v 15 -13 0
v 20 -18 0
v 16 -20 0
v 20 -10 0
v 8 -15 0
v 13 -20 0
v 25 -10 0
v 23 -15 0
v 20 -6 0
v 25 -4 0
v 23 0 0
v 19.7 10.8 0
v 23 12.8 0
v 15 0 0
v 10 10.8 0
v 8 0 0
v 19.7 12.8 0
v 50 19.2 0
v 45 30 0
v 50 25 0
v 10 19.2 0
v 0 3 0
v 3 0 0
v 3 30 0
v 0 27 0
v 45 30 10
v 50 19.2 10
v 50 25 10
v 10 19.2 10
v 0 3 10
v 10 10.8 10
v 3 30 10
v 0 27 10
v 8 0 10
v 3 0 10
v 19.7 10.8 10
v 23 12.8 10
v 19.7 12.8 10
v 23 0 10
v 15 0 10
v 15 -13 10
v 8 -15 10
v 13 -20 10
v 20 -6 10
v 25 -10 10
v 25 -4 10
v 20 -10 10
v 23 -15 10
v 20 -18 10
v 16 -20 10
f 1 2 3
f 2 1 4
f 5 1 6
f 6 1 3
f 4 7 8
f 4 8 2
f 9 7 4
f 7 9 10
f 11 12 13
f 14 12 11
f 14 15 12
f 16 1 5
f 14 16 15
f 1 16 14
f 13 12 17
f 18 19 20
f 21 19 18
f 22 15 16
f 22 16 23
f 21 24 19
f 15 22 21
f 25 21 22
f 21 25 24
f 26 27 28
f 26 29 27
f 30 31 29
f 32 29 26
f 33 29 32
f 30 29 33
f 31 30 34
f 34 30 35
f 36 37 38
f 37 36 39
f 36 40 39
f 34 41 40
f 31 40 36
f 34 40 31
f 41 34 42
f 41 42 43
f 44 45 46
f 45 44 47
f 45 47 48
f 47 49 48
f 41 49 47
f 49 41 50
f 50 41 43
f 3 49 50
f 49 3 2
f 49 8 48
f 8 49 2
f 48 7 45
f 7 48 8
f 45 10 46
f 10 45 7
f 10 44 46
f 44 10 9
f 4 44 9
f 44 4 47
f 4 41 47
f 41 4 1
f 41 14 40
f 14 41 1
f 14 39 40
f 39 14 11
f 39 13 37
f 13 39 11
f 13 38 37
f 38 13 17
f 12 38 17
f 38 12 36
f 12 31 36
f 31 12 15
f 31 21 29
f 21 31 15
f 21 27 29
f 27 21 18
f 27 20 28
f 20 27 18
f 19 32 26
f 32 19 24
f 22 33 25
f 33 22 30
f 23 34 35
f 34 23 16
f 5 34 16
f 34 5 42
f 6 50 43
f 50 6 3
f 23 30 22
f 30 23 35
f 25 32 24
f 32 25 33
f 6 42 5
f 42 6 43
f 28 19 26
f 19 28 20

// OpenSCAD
difference() {
    linear_extrude(height=10) {
        translate([5, 0, 0]) hone();
        hook();
    }
    translate([-1, -1, -1]) cylinder(h=13, r=5, $fn=4);
    translate([-1, 31, -1]) cylinder(h=13, r=5, $fn=4);
    translate([8, -20, -1]) cylinder(h=13, r=5, $fn=4);
    translate([50, 30, -1]) cylinder(h=13, r=5, $fn=4);
}

// 角の部分
module hone() {
    union() {
        translate([3, -20, 0]) square([7, 20]);
        polygon([[10, -20], [10, -13], [15, -10], [15, -6], [20, -4], [20, -10], [18, -15], [15, -18], [11, -20]]);
    }
}

// フックのベース部分
module hook() {
    union() {
        square([10, 30]);
        translate([10, 19.2, 0]) square([40, 10.8]);
        translate([10, 0, 0]) square([13, 10.8]);
        translate([19.7, 0, 0]) square([3.3, 12.8]);
    }
}
